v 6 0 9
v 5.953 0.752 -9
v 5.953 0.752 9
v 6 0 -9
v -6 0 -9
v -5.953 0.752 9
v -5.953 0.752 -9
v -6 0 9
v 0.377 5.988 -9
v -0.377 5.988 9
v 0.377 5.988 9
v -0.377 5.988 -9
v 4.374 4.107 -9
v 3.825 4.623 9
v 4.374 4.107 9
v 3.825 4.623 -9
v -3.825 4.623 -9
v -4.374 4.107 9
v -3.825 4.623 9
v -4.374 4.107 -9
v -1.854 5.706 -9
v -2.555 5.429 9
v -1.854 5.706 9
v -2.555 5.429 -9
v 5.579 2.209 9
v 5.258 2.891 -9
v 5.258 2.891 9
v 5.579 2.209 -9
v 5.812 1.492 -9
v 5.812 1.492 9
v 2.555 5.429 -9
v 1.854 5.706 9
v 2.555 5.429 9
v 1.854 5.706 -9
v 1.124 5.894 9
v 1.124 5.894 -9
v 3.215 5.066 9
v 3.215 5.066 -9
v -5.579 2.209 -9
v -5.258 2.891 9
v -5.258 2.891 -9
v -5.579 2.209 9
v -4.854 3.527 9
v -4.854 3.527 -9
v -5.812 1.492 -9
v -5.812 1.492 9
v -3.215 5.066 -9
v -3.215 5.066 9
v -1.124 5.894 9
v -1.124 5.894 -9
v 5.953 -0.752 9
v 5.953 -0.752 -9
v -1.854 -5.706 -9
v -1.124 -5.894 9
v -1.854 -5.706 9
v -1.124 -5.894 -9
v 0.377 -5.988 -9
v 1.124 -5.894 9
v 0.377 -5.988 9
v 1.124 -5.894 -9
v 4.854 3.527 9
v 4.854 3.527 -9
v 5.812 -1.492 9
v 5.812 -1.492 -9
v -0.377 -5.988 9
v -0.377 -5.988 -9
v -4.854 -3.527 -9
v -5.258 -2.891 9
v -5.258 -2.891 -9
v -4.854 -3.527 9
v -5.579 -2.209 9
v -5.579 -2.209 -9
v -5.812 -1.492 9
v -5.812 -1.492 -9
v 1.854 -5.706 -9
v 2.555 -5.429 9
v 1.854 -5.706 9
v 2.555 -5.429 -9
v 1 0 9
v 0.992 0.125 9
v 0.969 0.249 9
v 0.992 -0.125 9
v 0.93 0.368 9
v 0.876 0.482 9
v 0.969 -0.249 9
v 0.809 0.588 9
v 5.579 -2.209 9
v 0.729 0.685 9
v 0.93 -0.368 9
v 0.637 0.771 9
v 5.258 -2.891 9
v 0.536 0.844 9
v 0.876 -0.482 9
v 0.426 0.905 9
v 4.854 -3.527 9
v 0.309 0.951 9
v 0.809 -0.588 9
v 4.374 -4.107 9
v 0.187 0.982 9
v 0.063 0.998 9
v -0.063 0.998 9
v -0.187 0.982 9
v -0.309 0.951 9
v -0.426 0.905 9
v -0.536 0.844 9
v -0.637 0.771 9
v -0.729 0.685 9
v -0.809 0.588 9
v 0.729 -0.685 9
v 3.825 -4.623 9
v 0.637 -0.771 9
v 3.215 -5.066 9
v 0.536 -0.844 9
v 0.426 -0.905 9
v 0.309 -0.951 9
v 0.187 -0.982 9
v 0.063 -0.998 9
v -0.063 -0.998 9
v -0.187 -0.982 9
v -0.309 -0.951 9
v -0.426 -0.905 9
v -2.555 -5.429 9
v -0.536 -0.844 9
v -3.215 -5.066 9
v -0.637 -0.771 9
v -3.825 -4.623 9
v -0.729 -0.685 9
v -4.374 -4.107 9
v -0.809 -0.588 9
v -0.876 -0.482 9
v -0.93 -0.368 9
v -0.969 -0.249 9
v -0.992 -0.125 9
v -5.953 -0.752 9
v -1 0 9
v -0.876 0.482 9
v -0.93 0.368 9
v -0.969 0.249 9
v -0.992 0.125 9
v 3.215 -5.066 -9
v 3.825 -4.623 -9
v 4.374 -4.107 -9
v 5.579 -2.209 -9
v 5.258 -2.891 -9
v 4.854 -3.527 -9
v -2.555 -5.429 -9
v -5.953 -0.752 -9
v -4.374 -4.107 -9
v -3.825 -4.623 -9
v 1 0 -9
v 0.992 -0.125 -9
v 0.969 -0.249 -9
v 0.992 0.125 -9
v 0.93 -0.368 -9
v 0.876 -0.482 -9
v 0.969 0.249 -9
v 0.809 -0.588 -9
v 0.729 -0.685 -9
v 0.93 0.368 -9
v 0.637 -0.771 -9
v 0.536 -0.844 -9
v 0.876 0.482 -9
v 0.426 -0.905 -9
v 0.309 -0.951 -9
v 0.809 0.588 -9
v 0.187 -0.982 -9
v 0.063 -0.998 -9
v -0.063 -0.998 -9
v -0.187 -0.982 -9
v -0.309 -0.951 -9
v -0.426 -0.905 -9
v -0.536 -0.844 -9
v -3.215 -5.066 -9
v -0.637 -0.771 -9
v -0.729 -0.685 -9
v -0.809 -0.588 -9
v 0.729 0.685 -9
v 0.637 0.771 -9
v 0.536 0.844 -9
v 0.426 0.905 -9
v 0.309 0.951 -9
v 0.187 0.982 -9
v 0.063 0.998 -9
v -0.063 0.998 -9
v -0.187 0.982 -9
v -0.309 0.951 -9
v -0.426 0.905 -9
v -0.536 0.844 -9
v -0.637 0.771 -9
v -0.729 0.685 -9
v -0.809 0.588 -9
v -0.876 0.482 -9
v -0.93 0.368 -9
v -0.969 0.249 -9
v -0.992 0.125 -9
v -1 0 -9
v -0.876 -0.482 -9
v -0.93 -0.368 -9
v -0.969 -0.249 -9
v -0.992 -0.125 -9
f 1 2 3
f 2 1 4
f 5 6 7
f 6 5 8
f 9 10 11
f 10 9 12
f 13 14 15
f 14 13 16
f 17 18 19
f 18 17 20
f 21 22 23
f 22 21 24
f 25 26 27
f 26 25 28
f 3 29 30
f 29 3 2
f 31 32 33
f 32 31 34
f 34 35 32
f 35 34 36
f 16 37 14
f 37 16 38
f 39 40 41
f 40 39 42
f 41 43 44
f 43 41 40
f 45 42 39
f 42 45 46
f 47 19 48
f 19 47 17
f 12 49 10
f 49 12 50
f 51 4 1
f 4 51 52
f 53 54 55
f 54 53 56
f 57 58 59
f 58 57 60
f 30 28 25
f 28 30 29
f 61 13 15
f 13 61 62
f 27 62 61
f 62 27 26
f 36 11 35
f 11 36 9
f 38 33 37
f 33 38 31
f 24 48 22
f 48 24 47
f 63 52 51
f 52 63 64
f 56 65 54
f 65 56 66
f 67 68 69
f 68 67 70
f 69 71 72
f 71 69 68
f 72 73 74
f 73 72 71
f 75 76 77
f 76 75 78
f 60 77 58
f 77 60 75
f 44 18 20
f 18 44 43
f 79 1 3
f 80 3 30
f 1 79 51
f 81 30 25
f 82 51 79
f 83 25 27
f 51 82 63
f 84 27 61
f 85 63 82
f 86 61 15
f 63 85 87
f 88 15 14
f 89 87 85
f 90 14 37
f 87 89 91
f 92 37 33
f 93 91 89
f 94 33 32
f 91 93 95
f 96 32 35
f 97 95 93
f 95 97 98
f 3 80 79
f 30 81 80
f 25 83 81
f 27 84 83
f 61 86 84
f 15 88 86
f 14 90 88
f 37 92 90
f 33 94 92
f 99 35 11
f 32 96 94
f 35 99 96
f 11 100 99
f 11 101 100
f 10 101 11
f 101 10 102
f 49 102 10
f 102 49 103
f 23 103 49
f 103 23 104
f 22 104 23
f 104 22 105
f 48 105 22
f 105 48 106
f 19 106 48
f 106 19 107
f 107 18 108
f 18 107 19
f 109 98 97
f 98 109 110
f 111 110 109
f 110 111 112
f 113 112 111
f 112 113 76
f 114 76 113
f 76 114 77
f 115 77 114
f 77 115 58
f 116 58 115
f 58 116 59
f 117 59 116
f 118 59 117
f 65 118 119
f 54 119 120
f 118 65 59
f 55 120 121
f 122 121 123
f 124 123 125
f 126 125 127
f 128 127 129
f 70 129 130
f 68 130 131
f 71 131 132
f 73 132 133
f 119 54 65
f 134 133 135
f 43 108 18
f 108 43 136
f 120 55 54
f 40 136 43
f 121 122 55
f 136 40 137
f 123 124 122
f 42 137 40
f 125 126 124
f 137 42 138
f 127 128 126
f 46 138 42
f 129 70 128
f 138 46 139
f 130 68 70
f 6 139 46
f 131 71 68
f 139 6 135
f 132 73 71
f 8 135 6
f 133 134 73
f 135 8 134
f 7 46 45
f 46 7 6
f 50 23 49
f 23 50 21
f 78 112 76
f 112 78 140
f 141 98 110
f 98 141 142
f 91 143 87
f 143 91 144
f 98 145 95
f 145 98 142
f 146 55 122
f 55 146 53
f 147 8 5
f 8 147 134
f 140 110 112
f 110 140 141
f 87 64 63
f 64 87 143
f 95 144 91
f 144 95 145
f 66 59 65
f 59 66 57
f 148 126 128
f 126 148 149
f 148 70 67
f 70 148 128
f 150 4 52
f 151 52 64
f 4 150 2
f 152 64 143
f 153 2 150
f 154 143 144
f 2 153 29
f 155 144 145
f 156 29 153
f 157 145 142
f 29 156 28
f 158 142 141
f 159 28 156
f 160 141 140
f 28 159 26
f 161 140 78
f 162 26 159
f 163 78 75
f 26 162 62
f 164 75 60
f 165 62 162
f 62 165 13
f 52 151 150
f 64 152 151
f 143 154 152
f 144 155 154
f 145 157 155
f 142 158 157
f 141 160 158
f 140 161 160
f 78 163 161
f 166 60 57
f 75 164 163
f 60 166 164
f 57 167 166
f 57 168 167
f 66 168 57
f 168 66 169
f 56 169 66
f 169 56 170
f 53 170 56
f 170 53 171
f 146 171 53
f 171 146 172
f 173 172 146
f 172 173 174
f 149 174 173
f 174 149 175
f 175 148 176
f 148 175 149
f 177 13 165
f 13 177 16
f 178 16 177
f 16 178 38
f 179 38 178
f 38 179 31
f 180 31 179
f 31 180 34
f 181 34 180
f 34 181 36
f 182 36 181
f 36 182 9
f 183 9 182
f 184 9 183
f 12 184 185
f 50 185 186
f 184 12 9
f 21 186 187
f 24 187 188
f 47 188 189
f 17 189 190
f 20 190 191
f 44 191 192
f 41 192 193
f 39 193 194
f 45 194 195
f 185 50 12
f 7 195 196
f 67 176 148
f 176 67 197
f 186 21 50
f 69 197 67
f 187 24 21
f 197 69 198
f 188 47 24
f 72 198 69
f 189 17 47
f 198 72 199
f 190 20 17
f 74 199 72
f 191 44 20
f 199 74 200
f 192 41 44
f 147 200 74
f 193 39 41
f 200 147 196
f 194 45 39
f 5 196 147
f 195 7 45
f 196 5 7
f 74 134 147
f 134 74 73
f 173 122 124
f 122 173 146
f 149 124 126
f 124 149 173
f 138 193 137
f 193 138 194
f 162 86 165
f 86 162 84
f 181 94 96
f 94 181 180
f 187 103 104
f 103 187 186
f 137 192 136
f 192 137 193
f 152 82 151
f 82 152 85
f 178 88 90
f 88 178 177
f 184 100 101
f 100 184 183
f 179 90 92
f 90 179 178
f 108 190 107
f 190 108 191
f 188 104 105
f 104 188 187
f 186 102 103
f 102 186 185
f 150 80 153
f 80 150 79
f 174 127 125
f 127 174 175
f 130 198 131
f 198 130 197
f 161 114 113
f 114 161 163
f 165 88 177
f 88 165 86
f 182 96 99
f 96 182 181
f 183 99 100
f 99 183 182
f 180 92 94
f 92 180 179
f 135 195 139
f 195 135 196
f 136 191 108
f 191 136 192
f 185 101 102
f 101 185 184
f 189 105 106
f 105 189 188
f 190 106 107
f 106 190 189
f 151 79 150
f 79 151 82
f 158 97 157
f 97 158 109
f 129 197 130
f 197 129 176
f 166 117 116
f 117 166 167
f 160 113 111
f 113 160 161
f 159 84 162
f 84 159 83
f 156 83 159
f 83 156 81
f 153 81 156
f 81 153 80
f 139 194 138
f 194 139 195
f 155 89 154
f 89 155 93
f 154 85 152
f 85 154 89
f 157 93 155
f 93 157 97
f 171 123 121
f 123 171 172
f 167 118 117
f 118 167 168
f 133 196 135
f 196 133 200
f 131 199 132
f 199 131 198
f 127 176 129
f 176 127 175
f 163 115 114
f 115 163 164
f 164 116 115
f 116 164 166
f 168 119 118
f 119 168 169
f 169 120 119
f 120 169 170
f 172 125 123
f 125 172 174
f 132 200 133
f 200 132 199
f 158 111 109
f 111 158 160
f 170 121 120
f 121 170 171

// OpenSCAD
$fn = 50;


difference() {
	union() {
		translate(v = [0, 0, -9.0000000000]) {
			cylinder(h = 18, r = 6.0000000000);
		}
	}
	union() {
		translate(v = [0, 0, -100.0000000000]) {
			cylinder(h = 200, r = 1.0000000000);
		}
	}
}
